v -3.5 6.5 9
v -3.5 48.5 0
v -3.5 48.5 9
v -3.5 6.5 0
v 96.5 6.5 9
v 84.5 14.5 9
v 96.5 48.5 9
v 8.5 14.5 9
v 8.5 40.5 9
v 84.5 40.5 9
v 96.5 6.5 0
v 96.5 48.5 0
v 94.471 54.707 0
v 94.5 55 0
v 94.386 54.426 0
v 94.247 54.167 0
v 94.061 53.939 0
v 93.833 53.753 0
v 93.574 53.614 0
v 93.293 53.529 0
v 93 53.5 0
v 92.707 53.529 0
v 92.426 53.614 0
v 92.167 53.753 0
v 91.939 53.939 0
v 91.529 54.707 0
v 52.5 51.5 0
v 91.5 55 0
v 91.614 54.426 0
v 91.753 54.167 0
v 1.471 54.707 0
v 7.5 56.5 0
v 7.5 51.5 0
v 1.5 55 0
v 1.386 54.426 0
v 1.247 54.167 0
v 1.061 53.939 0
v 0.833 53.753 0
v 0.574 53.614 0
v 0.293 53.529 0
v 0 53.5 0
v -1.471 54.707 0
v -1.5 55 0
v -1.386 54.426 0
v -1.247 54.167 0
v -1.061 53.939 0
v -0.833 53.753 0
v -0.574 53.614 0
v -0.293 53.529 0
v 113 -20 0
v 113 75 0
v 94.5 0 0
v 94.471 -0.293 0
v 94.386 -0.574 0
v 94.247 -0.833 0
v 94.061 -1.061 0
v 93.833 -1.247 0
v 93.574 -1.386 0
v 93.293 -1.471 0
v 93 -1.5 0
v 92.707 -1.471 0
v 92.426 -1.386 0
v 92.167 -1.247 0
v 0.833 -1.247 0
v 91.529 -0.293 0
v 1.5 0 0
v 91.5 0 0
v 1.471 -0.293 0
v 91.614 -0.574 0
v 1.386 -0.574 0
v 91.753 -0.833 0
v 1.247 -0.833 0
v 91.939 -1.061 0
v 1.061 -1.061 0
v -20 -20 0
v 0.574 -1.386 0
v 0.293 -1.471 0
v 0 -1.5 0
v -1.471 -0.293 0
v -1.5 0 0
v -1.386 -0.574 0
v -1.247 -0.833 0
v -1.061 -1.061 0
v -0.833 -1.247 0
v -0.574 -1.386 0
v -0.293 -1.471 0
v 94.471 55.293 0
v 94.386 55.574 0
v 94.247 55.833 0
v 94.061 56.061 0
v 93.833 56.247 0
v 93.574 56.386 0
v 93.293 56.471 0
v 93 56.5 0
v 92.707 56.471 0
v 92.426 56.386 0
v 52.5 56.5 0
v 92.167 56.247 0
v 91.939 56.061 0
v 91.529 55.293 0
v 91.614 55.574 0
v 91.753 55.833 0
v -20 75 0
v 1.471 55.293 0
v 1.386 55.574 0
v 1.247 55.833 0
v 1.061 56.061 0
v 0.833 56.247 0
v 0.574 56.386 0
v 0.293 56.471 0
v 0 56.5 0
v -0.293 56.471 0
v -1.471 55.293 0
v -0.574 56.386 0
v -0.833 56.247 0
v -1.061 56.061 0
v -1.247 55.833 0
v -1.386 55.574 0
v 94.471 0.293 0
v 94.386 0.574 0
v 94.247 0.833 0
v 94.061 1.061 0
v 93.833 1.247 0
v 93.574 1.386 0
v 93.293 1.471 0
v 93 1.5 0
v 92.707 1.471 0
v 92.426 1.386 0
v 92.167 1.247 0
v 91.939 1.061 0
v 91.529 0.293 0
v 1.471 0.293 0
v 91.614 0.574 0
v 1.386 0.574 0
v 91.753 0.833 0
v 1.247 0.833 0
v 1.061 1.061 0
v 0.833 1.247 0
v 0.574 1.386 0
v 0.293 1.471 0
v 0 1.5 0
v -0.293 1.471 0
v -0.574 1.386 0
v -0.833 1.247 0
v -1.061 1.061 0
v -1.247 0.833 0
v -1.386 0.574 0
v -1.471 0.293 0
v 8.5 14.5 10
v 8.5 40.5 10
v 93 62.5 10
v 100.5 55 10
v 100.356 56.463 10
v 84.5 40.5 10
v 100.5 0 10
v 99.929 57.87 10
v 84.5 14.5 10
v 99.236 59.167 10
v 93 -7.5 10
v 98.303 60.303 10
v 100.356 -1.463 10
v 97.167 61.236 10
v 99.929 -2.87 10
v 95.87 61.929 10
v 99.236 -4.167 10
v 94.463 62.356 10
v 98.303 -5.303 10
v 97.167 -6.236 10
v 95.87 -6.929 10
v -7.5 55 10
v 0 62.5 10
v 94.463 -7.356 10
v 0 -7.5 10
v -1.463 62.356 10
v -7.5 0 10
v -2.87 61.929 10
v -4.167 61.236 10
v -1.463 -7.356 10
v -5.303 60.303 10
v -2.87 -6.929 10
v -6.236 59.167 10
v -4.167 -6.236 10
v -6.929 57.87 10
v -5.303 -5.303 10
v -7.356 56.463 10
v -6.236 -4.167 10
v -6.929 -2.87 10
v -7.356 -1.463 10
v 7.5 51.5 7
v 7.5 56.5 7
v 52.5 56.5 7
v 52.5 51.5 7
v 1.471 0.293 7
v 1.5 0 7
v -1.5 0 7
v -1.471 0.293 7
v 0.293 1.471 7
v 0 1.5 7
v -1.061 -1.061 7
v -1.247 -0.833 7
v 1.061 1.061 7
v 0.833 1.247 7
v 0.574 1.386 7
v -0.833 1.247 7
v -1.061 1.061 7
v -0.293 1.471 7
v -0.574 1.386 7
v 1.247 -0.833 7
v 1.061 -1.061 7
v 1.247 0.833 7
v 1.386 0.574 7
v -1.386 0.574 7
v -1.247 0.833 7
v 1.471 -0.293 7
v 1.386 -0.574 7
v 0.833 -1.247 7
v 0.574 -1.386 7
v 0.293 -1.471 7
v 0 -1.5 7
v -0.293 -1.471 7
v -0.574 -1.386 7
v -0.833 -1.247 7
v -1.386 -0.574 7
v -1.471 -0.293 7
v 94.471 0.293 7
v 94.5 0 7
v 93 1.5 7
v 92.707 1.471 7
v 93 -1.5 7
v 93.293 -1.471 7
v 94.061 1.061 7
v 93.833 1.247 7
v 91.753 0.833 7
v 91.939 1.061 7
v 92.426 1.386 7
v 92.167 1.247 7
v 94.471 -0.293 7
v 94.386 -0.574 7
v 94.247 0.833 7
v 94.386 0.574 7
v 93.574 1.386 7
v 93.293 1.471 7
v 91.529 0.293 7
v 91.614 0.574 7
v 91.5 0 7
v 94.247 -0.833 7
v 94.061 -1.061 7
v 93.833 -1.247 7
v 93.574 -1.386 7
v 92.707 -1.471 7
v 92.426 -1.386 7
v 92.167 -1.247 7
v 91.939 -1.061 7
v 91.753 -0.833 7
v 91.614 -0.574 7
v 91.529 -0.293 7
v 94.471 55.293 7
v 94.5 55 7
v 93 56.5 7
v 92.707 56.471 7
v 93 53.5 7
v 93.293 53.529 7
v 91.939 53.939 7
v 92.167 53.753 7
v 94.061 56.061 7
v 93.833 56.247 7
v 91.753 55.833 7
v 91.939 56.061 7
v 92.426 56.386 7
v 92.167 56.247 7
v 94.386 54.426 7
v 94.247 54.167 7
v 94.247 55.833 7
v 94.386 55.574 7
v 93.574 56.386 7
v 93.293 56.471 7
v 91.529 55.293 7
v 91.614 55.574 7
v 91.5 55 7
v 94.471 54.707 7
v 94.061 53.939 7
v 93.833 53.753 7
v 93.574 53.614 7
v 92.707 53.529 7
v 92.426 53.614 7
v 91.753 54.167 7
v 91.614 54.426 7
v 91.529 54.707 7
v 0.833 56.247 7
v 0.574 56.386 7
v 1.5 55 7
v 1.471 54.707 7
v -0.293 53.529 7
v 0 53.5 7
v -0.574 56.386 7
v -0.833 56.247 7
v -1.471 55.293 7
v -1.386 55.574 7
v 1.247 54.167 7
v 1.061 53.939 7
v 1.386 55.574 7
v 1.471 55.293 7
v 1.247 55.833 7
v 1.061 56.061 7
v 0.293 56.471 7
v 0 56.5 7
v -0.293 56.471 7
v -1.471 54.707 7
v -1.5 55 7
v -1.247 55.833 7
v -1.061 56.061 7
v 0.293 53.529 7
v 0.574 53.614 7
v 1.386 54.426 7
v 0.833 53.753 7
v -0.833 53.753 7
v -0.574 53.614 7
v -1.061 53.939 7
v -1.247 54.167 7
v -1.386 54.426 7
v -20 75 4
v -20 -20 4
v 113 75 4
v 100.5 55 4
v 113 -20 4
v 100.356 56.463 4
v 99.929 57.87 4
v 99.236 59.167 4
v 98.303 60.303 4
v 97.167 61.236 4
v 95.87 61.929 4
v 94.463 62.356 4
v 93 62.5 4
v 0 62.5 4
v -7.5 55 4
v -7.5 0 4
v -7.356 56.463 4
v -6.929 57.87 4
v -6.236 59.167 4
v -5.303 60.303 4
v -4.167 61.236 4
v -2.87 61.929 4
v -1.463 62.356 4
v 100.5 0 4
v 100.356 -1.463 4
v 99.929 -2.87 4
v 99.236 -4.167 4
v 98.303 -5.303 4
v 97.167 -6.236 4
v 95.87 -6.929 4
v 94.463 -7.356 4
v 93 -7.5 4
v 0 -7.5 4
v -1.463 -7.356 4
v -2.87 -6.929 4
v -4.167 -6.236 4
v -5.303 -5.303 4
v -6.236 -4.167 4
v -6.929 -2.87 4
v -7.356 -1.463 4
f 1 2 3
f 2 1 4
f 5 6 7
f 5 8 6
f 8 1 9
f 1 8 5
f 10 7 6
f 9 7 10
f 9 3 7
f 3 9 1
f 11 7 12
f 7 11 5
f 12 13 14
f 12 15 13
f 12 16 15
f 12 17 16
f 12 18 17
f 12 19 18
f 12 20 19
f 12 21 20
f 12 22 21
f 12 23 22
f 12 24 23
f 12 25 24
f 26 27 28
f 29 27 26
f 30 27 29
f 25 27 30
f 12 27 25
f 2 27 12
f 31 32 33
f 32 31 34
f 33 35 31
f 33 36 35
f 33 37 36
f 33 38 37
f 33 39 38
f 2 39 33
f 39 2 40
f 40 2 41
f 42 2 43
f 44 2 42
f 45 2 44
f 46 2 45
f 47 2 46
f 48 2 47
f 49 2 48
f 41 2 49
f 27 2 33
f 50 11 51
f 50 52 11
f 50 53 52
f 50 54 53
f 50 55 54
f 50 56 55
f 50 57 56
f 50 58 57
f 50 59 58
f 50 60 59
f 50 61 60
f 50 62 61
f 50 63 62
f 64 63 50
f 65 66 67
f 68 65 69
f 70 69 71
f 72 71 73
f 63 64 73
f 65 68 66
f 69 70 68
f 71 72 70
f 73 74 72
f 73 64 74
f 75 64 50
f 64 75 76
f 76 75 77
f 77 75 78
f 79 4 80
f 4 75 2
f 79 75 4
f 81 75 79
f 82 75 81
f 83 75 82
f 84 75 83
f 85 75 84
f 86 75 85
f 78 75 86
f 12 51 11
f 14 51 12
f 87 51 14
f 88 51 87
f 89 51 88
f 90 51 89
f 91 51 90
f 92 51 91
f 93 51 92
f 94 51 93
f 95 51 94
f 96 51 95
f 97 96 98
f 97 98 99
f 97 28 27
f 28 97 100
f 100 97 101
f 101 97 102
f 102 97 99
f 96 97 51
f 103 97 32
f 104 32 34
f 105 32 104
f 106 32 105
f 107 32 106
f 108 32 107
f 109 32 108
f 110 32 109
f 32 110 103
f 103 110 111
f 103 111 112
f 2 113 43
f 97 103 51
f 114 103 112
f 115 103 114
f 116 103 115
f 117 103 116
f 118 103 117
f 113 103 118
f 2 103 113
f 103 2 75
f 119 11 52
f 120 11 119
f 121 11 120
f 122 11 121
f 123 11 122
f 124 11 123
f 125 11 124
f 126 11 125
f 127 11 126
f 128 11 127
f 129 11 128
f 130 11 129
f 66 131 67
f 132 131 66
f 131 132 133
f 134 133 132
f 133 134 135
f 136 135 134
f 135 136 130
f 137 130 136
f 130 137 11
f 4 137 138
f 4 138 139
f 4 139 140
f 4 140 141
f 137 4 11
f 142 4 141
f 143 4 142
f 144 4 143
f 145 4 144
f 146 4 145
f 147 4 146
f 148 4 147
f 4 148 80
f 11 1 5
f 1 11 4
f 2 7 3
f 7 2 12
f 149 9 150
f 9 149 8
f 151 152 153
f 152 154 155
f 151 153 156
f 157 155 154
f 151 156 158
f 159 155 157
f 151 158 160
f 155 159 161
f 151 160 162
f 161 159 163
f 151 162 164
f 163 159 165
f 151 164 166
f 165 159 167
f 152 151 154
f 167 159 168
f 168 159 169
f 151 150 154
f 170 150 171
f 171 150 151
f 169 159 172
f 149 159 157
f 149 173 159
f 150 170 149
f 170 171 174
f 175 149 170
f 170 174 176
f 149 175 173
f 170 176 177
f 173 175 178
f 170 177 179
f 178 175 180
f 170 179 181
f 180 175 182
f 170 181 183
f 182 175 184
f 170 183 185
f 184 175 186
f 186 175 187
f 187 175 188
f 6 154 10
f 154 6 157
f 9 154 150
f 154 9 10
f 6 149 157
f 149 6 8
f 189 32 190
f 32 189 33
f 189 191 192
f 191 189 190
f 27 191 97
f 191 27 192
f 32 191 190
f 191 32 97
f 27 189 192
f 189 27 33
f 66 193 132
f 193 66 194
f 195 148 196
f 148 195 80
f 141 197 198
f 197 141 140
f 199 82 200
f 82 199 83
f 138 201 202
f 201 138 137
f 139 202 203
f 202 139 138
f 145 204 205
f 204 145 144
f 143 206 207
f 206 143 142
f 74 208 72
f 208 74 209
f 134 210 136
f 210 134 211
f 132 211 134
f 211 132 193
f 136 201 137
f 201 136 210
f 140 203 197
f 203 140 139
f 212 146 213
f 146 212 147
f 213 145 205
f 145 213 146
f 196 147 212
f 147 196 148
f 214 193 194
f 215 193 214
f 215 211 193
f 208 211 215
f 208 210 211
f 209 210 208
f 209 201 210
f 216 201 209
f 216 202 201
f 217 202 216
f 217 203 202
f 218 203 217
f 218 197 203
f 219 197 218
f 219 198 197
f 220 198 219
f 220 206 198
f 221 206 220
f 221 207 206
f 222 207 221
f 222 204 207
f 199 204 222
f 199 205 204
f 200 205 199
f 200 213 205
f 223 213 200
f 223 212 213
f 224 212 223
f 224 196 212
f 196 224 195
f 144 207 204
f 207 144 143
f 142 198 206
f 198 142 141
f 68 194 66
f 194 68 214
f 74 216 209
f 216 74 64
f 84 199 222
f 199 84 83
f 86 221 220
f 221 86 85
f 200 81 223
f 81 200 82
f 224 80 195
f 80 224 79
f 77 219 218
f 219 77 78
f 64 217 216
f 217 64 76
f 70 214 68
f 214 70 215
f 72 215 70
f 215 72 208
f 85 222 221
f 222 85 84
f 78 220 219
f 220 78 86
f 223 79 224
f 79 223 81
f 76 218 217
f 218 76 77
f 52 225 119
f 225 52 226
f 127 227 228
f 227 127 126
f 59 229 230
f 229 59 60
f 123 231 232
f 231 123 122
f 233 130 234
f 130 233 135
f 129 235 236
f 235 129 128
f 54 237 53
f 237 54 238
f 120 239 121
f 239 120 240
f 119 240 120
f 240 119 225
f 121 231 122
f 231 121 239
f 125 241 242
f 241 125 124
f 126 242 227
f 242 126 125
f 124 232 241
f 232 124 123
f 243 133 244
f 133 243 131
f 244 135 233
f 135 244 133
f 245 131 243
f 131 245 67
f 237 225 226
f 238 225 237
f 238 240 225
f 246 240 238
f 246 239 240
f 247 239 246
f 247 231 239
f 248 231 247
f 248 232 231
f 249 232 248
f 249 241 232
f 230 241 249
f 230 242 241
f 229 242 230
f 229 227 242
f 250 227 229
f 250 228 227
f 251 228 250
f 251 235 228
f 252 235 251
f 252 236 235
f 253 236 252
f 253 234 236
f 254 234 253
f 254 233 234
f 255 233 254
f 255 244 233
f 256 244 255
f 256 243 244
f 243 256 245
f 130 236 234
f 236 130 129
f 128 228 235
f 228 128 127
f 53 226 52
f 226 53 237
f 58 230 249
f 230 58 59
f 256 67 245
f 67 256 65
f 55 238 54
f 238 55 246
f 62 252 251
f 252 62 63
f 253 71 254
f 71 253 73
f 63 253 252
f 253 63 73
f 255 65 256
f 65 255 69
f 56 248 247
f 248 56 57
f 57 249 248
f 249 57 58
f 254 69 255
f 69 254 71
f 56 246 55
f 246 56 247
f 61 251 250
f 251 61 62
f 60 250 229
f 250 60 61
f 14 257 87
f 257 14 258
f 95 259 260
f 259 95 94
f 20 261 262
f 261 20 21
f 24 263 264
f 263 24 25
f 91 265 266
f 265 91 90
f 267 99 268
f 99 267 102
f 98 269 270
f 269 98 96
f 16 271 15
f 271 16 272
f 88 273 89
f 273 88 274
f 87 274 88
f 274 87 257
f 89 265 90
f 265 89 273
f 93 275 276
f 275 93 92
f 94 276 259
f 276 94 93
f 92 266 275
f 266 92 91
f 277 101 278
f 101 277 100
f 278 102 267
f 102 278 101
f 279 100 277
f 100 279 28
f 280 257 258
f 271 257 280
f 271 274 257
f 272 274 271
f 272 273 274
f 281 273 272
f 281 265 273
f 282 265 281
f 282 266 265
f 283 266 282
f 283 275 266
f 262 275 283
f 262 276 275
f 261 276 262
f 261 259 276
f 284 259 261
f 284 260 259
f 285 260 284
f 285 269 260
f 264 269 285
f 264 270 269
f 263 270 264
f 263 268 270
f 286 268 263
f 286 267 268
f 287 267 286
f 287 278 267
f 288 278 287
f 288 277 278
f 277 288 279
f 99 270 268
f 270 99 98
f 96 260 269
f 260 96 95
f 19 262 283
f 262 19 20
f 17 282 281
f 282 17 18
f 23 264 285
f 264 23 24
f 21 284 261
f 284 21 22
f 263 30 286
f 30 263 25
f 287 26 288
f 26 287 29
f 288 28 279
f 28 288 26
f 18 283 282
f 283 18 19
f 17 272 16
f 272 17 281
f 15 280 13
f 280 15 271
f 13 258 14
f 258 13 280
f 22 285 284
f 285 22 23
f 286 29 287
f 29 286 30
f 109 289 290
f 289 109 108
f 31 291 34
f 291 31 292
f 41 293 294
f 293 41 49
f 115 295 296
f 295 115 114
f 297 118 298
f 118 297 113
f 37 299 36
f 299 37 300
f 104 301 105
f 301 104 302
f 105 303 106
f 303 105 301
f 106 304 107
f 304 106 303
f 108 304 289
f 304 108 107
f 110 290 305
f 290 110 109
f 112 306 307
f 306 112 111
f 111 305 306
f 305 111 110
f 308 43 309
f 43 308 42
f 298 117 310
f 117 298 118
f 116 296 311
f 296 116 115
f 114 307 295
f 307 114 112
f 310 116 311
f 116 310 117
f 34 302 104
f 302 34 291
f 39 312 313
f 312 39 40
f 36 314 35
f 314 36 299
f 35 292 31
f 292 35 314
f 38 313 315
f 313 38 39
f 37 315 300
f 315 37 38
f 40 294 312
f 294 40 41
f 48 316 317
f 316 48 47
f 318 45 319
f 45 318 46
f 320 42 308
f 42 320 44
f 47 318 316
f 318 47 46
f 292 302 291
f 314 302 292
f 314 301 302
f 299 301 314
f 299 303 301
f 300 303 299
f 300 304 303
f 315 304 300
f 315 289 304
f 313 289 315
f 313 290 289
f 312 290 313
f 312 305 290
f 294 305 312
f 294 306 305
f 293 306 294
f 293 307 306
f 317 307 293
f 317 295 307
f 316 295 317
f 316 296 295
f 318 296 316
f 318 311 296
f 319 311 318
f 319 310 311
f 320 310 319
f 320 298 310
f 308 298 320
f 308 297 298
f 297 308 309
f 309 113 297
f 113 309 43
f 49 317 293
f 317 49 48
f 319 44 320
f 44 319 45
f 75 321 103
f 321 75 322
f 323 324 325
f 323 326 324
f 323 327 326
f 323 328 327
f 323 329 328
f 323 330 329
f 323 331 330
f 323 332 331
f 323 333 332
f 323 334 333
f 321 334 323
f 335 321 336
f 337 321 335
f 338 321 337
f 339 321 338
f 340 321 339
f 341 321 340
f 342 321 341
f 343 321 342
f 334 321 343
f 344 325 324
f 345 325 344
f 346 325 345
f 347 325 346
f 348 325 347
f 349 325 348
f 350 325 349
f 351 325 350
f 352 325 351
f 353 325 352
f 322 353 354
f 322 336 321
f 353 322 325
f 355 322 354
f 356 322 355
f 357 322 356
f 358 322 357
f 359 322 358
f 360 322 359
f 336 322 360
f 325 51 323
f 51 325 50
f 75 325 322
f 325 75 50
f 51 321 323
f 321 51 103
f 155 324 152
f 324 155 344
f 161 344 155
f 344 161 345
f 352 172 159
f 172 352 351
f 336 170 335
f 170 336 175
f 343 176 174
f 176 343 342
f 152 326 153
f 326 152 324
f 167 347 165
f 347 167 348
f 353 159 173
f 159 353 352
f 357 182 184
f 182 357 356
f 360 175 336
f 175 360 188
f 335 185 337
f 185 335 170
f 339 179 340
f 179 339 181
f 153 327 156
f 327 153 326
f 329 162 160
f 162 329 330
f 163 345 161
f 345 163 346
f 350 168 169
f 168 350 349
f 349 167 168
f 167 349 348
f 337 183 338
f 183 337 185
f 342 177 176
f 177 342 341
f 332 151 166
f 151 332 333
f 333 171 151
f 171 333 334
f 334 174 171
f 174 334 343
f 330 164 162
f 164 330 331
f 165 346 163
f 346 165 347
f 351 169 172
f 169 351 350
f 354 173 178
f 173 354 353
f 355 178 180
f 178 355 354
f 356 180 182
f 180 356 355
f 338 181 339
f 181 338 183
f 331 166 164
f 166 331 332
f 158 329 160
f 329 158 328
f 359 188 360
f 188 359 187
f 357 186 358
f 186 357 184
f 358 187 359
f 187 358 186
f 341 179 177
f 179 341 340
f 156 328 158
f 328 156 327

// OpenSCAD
wall = 6; // thickness of material for enclosure
depth = 10; // LCD protrusion from PCB (metal casing)

difference() {
    union() {
        // back panel (glue or epoxy to enclosure material)
        translate([-20,-20,0]) {
            cube([133, 95, depth - wall]);
        }

        // panel hole
        color("green") {
            translate([0,0,depth - wall -1]) {
                minkowski() {
                    // 108 x 70 with 7.5 corner radius
                    cube([93, 55, wall]);
                    cylinder(r=7.5,h=1, $fn=32);
                }   
            }
        }
    }

    union() {
        // module cutout (metal casing)
        translate([-3.5,6.5,0]){
            color("red")
            cube([100, 42, depth-1]);
        }

        // screen cutout
        translate([8.5,14.5,0]){
            cube([76, 26, depth]);
        }

        // pins
        translate([7.5 ,55 - 5 + 1.5,0]){
            cube([45, 5, depth- 3]);
        }

        // mounting holes
        cylinder(d=3, h=depth - 3, $fn = 32);
        translate([93,0,0]){
            cylinder(d=3, h=depth - 3, $fn = 32);
        }
        translate([93,55,0]){
            cylinder(d=3, h=depth - 3, $fn = 32);
        }
        translate([0,55,0]){
            cylinder(d=3, h=depth - 3, $fn = 32);
        }
    }
}
